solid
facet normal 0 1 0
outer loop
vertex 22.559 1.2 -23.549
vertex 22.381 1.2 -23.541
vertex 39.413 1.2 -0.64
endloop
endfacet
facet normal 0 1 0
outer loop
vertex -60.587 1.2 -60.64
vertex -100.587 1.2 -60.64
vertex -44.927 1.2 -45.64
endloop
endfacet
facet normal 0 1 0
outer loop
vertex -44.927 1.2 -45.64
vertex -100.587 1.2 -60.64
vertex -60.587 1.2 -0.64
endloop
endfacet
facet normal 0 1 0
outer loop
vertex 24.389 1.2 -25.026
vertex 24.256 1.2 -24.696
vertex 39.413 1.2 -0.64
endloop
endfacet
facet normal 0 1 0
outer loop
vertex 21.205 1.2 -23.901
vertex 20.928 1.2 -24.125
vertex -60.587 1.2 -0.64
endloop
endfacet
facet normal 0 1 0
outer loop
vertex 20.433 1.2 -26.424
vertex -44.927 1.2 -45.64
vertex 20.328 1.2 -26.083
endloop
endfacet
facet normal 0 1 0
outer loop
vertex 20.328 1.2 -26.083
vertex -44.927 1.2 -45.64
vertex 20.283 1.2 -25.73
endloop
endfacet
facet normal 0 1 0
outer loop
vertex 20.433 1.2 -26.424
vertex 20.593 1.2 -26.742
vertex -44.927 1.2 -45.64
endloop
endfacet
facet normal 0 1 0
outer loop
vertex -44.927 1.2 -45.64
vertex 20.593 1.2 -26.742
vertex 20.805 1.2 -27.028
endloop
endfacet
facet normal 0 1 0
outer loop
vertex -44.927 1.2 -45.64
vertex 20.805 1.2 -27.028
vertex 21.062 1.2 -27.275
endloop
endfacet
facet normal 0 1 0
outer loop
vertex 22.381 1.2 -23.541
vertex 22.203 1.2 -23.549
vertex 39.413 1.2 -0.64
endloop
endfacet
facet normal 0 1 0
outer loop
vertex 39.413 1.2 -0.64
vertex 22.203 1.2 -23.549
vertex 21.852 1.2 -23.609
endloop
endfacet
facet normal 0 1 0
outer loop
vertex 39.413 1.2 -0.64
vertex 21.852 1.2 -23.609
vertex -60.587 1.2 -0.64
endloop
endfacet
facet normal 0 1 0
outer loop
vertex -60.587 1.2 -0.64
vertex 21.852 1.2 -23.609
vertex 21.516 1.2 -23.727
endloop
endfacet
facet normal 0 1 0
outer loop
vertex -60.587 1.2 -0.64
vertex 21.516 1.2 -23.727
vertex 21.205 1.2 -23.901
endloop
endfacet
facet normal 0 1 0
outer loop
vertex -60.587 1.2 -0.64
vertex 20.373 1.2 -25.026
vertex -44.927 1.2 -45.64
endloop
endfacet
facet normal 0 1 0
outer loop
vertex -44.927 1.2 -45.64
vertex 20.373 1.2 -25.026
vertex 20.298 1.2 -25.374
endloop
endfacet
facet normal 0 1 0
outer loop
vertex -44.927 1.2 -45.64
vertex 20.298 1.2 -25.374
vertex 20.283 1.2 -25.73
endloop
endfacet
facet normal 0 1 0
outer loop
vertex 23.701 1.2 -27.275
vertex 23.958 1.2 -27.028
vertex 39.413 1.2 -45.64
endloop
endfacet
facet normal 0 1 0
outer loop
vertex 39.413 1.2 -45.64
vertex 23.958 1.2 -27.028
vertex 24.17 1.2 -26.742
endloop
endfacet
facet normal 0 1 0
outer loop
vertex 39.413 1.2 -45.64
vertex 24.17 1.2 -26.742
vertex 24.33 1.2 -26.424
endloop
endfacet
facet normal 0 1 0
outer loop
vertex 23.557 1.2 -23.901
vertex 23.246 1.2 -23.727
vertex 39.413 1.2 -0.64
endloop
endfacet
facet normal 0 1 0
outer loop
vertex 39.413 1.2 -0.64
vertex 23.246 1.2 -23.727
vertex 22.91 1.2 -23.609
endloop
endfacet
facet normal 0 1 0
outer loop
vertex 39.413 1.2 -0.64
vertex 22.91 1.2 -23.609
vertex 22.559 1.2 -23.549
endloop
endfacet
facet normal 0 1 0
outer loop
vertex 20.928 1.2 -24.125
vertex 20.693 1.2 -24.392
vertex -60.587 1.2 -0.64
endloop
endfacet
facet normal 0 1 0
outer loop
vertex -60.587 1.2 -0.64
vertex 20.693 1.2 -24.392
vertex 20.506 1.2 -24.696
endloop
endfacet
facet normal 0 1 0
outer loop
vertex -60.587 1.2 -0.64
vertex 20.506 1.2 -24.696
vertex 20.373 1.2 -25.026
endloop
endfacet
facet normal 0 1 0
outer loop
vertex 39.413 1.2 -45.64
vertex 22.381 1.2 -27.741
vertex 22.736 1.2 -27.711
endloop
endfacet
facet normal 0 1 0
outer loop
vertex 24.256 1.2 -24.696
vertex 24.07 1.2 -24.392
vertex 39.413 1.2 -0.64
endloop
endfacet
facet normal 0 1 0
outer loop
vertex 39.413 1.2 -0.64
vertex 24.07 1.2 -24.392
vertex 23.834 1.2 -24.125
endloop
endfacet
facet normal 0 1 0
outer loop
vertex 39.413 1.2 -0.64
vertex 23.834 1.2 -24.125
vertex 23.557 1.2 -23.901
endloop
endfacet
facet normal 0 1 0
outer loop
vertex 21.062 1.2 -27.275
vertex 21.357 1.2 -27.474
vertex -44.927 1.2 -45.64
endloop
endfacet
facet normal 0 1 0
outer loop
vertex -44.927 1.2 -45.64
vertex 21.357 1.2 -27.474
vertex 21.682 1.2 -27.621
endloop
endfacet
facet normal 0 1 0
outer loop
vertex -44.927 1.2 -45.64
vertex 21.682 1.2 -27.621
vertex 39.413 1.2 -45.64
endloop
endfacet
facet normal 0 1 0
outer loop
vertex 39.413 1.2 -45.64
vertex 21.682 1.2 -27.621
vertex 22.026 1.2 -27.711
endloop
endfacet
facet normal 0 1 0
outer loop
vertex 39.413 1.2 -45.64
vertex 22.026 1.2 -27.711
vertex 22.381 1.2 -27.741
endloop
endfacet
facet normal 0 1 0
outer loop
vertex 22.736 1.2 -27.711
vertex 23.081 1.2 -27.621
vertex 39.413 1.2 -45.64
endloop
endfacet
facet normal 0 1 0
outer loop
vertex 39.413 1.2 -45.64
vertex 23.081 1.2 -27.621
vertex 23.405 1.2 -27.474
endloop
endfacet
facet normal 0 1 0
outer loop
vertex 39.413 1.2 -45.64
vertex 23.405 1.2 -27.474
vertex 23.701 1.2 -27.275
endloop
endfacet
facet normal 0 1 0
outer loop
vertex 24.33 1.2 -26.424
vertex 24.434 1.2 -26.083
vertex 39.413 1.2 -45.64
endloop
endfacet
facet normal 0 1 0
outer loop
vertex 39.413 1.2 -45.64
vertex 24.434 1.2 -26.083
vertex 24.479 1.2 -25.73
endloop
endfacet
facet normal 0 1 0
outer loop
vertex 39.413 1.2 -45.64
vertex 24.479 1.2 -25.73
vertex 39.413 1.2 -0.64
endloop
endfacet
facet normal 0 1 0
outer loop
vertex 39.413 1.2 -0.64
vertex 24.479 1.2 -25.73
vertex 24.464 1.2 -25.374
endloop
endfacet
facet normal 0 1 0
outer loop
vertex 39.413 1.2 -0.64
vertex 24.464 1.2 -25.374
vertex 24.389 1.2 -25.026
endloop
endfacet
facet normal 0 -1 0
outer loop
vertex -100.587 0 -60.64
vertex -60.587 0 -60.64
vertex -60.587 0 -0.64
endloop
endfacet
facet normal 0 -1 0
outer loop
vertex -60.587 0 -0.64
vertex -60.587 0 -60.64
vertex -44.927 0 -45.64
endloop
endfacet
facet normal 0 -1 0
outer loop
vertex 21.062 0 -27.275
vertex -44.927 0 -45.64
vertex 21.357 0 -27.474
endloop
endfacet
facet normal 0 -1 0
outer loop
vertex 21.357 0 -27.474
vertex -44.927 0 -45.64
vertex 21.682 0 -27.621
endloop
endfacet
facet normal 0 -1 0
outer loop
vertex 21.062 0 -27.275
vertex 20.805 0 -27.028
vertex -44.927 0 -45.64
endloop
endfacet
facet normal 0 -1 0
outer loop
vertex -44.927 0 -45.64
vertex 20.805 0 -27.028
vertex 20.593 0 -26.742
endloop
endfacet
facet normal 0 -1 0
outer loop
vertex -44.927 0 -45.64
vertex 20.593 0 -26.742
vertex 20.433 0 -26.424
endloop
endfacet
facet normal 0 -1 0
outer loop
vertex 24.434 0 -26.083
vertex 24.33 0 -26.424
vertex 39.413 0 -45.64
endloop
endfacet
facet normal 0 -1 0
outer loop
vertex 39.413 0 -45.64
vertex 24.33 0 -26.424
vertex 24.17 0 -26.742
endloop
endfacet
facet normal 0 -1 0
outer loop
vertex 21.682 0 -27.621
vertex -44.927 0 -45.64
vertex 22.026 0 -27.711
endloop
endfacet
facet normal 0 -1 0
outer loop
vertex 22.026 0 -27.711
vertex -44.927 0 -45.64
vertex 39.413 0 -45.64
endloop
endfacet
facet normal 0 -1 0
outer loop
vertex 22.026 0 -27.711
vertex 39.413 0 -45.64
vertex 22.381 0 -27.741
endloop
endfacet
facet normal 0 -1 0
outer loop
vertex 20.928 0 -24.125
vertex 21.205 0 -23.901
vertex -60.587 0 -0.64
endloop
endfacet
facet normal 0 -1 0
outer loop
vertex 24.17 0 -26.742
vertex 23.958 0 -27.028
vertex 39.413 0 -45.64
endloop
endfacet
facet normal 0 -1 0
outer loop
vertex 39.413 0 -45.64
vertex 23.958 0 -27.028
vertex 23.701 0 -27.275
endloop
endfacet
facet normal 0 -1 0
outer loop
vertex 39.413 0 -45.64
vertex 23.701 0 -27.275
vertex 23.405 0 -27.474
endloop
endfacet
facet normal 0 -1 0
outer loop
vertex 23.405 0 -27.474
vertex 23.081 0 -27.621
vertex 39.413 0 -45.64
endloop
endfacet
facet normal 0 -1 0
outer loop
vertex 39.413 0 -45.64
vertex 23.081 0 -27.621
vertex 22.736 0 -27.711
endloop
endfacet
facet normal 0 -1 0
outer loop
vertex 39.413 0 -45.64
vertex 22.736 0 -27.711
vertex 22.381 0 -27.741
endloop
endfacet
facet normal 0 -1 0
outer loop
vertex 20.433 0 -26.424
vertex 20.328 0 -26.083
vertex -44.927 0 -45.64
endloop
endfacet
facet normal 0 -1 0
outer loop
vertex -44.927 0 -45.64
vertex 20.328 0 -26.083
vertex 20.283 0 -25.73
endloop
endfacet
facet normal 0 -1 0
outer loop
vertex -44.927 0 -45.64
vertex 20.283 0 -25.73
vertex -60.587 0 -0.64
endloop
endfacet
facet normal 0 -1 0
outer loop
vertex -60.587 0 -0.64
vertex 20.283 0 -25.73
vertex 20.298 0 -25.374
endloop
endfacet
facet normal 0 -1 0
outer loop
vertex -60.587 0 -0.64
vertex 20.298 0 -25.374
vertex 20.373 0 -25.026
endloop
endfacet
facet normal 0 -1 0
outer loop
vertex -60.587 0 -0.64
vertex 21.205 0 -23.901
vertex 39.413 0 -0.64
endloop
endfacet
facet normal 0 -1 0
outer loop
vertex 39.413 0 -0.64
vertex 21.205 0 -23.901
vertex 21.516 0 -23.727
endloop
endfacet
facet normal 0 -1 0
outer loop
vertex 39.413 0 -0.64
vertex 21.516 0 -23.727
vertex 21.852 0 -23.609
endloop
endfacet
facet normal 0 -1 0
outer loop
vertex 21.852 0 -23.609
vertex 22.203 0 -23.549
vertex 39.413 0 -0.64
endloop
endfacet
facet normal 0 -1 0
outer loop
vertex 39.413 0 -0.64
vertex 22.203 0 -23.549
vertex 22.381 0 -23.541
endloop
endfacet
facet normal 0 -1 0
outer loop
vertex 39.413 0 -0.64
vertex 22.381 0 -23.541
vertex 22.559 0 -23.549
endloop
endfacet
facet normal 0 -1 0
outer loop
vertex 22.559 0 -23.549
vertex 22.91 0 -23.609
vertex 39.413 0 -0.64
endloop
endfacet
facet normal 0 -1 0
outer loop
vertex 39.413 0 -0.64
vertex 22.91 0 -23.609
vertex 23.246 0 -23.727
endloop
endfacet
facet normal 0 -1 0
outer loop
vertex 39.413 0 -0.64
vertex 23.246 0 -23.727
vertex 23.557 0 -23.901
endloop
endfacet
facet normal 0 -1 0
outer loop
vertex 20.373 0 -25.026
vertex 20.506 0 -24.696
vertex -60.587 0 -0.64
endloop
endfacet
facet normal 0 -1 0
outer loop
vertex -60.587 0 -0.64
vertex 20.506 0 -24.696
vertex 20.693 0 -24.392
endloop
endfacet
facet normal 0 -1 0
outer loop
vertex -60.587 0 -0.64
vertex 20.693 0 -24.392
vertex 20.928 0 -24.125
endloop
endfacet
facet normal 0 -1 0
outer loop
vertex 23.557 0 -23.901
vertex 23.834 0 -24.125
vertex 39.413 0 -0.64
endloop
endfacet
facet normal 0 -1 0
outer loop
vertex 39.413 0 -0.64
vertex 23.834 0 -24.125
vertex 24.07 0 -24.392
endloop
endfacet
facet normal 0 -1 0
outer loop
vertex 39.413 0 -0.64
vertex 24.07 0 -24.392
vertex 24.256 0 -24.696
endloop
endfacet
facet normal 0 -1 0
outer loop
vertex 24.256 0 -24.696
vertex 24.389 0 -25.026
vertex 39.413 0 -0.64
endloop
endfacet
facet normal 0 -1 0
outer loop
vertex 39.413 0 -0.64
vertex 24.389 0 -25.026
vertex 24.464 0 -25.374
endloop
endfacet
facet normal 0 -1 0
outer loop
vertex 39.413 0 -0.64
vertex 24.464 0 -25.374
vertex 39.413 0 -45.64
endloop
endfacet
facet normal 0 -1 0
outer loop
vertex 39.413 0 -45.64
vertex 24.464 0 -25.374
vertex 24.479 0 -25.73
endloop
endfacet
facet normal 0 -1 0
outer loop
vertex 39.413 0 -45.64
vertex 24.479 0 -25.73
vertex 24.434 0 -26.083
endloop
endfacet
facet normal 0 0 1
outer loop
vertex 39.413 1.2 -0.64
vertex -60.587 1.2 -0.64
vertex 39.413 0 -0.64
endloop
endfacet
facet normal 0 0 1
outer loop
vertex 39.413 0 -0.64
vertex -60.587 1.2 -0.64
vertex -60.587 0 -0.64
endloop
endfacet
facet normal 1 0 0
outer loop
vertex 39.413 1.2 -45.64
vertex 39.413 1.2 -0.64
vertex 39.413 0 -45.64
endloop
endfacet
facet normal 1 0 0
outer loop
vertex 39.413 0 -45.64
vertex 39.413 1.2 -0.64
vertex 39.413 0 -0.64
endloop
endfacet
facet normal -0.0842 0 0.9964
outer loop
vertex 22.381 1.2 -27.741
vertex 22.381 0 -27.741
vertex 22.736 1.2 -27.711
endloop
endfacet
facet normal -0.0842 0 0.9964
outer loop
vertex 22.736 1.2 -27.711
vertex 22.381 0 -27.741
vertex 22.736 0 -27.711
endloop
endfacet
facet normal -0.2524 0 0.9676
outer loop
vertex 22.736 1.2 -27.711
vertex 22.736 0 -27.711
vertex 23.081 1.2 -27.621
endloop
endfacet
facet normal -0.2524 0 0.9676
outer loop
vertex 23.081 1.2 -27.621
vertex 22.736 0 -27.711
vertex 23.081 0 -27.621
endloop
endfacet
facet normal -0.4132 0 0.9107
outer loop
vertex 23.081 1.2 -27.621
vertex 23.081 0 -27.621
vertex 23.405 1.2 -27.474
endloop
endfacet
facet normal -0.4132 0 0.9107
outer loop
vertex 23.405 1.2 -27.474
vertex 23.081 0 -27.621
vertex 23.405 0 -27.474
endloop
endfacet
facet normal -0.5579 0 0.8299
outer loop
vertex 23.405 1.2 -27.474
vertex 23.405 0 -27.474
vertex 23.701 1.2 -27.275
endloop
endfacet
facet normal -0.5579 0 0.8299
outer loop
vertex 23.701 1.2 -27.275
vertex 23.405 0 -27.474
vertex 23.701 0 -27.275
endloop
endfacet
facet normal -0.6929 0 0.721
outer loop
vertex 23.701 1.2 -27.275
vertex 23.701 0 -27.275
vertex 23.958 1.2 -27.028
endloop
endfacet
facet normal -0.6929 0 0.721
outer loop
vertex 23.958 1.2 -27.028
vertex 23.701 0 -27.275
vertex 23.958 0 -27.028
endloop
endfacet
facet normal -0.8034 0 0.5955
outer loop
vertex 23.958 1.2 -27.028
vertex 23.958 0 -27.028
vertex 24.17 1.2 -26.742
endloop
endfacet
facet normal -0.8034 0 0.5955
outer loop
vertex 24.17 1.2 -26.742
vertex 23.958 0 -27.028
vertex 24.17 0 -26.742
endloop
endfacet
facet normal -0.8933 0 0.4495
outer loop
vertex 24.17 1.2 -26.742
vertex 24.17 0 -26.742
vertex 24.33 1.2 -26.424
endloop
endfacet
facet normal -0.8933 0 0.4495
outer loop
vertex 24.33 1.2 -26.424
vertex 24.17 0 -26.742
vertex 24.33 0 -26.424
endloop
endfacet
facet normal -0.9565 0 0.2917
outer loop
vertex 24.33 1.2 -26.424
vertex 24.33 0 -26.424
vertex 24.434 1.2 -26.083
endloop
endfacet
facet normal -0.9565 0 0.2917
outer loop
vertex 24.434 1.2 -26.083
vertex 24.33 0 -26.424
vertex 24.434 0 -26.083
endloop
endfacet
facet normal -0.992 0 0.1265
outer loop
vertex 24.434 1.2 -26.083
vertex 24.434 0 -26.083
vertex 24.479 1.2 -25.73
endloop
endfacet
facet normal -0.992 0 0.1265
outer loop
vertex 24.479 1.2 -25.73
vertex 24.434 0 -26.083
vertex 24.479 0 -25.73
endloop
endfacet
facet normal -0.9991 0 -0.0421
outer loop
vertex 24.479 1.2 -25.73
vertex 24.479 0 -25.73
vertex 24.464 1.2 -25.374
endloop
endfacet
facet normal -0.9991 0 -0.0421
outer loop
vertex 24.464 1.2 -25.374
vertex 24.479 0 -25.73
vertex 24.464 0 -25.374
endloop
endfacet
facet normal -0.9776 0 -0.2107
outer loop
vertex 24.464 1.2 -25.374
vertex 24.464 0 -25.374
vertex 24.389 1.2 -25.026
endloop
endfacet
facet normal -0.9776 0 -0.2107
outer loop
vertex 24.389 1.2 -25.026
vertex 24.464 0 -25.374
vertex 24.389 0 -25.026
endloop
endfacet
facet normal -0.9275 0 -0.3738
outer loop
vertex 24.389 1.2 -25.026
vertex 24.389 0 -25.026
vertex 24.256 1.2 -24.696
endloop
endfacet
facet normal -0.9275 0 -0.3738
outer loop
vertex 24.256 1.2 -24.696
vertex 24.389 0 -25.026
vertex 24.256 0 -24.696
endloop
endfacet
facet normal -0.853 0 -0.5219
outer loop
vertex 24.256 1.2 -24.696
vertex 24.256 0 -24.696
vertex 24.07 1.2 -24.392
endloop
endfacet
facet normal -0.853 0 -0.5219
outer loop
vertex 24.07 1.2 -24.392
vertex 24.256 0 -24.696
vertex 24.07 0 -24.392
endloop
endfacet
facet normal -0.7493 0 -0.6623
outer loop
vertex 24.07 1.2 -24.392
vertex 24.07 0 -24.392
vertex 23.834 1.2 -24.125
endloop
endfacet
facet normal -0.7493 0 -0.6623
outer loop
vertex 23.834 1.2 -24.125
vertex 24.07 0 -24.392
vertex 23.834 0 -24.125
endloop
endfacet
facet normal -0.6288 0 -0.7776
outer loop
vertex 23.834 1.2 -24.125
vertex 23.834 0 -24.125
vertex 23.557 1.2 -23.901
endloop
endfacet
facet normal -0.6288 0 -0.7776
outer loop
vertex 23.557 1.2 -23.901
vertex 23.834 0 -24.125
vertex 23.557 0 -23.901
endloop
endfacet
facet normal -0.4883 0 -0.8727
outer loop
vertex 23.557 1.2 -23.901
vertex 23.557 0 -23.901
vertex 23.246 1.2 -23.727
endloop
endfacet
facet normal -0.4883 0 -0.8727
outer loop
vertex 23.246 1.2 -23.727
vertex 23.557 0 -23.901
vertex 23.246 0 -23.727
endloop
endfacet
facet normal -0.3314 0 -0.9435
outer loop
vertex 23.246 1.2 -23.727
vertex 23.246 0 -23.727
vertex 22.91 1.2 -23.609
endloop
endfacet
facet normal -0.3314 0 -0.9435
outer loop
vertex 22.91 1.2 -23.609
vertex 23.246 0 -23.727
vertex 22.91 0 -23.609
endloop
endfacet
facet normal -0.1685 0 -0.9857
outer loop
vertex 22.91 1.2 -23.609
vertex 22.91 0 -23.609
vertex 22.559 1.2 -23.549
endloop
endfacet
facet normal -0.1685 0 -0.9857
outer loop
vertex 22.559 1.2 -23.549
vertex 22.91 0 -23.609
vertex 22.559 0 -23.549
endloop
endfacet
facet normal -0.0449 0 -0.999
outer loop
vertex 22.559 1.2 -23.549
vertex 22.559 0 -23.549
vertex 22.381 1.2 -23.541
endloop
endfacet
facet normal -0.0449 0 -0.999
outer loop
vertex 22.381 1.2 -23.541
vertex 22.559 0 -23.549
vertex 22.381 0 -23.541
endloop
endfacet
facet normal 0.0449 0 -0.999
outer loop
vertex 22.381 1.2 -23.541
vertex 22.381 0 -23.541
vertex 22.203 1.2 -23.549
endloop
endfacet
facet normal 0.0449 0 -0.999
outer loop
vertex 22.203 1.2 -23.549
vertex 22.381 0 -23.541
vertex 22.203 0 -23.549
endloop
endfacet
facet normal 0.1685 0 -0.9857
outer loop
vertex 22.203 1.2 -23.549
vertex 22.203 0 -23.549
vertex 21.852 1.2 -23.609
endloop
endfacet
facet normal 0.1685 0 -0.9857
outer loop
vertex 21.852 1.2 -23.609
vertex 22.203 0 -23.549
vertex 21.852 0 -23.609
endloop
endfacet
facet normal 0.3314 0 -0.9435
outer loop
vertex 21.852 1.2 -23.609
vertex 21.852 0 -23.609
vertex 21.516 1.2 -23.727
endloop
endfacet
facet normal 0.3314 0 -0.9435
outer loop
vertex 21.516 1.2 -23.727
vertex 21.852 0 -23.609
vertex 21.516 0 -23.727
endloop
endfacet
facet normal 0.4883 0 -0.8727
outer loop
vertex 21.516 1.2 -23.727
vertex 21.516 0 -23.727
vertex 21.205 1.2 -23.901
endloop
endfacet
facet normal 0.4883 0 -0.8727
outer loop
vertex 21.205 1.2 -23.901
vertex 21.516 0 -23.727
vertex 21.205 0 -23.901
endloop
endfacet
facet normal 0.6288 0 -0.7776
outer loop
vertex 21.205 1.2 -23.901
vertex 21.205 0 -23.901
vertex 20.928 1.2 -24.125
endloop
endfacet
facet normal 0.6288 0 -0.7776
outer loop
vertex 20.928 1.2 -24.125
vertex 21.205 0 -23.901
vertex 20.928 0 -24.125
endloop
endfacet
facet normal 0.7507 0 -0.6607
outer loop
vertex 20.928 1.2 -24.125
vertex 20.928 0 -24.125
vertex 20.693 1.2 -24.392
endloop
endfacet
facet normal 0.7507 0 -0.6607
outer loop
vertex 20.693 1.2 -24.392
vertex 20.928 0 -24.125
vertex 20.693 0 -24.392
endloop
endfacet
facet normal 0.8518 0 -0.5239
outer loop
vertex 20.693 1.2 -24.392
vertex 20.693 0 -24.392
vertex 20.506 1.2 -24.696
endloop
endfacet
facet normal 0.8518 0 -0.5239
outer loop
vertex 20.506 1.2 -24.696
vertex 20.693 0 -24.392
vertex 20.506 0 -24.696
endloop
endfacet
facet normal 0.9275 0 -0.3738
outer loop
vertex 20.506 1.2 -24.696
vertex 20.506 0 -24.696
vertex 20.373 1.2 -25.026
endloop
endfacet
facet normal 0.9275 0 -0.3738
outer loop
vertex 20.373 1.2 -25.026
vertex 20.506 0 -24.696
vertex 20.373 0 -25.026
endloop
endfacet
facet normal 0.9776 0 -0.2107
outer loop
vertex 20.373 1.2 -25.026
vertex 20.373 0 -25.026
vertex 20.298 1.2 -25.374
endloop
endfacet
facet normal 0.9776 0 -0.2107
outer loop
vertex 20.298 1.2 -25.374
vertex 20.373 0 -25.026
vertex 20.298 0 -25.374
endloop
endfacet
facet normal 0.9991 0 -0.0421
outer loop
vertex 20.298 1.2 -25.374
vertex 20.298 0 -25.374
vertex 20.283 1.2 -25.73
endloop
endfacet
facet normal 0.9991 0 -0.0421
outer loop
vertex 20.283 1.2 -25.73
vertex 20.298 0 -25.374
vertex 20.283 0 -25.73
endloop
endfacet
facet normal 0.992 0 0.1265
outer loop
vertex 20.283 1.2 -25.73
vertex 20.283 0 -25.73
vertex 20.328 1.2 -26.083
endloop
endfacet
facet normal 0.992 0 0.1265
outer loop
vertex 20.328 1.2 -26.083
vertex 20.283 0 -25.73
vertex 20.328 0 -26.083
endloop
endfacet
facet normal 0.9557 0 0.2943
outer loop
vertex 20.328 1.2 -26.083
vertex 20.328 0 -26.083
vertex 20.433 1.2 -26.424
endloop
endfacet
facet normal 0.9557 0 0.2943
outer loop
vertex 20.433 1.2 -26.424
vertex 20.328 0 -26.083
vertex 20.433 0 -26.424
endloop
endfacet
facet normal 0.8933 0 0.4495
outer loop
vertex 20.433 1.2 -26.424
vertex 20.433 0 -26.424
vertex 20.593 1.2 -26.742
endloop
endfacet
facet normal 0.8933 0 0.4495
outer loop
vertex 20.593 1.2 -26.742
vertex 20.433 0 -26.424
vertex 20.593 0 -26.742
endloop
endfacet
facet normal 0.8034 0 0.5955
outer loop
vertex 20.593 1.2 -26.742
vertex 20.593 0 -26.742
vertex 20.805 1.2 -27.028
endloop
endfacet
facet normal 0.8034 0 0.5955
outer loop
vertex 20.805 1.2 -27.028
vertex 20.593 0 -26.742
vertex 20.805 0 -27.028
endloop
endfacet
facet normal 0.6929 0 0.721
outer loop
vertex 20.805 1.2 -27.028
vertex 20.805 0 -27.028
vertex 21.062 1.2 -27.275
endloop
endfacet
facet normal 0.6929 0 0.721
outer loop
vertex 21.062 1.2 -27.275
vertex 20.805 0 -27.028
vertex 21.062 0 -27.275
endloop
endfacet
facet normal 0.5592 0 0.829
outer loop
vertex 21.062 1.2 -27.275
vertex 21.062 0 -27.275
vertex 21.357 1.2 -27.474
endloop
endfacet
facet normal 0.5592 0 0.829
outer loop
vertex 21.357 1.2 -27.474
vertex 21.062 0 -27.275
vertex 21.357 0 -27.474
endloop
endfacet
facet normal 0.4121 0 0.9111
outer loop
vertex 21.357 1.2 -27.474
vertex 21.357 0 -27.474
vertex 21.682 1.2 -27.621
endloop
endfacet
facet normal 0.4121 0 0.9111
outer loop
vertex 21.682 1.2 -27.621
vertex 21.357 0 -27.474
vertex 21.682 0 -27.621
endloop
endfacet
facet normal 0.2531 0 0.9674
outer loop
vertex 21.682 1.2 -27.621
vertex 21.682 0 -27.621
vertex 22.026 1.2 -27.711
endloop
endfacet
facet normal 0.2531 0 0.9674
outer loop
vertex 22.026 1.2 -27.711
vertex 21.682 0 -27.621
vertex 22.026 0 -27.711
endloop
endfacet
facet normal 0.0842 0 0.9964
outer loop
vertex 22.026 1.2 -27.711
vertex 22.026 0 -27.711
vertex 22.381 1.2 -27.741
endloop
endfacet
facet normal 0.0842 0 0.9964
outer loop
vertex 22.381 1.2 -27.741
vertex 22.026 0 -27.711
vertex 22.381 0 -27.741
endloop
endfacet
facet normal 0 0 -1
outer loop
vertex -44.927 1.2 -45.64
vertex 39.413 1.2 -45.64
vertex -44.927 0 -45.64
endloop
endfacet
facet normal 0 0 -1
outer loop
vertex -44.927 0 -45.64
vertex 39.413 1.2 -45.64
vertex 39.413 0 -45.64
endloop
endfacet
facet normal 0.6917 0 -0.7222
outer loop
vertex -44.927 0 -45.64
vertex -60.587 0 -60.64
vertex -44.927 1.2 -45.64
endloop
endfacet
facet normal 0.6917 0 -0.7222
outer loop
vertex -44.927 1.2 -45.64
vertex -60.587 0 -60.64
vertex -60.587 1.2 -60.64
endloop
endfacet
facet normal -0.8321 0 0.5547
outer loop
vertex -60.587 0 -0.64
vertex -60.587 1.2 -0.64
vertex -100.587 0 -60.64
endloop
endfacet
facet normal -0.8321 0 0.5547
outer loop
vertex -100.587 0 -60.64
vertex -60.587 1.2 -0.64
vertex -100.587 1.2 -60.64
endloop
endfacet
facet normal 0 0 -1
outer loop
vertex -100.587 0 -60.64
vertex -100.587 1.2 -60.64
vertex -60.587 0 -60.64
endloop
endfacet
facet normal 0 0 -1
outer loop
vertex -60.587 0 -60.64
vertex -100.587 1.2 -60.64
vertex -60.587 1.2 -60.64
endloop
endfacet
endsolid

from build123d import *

# Parameters (mm, degrees)
SKETCH2_R           = 2.1
BOSS_EXTRUDE1_DEPTH = 1.2
CUT_EXTRUDE1_DEPTH  = 1.5
SKETCH4_R           = 2.1
BOSS_EXTRUDE3_DEPTH = 1.2
CUT_EXTRUDE2_DEPTH  = 1.5


with BuildPart() as part:
    # Sketch2 → Boss-Extrude1 (new body)
    with BuildSketch(Plane(origin=(0, 0, 0), x_dir=(1, 0, 0), z_dir=(0, 1, 0))):
        Polygon((39.4127274, 50.640295112), (39.4127274, 0.640295112), (-45.5872726, 0.640295112), (-80.5872726, 50.640295112), align=None)
        with Locations((22.381300815, 25.64100497)):
            Circle(SKETCH2_R, mode=Mode.SUBTRACT)
    extrude(amount=BOSS_EXTRUDE1_DEPTH)

    # Sketch3 → Cut-Extrude1 (cut)
    with BuildSketch(Plane(origin=(0, 1.2, 0), x_dir=(1, 0, 0), z_dir=(0, 1, 0))):
        Polygon((39.4127274, 40.640295112), (-30.5872726, 40.640295112), (-50.5872726, 50.640295112), (39.4127274, 50.640295112), align=None)
    extrude(amount=-CUT_EXTRUDE1_DEPTH, mode=Mode.SUBTRACT)

    # Sketch4 → Boss-Extrude3 (add)
    with BuildSketch(Plane(origin=(0, 1.2, 0), x_dir=(1, 0, 0), z_dir=(0, 1, 0))):
        Polygon((39.4127274, 0.640295112), (-60.5872726, 0.640295112), (-100.5872726, 60.640295112), (-60.5872726, 60.640295112), (-44.926762529, 45.640295112), (39.4127274, 45.640295112), align=None)
        with Locations((22.381300815, 25.64100497)):
            Circle(SKETCH4_R, mode=Mode.SUBTRACT)
    extrude(amount=-BOSS_EXTRUDE3_DEPTH)

    # Sketch6 → Cut-Extrude2 (cut)
    with BuildSketch(Plane(origin=(0, 1.2, 0), x_dir=(1, 0, 0), z_dir=(0, 1, 0))):
        Polygon((-40.5872726, 45.640295112), (-44.926762529, 45.640295112), (-49.666026343, 50.179671984), align=None)
    extrude(amount=-CUT_EXTRUDE2_DEPTH, mode=Mode.SUBTRACT)


solid = part.part
